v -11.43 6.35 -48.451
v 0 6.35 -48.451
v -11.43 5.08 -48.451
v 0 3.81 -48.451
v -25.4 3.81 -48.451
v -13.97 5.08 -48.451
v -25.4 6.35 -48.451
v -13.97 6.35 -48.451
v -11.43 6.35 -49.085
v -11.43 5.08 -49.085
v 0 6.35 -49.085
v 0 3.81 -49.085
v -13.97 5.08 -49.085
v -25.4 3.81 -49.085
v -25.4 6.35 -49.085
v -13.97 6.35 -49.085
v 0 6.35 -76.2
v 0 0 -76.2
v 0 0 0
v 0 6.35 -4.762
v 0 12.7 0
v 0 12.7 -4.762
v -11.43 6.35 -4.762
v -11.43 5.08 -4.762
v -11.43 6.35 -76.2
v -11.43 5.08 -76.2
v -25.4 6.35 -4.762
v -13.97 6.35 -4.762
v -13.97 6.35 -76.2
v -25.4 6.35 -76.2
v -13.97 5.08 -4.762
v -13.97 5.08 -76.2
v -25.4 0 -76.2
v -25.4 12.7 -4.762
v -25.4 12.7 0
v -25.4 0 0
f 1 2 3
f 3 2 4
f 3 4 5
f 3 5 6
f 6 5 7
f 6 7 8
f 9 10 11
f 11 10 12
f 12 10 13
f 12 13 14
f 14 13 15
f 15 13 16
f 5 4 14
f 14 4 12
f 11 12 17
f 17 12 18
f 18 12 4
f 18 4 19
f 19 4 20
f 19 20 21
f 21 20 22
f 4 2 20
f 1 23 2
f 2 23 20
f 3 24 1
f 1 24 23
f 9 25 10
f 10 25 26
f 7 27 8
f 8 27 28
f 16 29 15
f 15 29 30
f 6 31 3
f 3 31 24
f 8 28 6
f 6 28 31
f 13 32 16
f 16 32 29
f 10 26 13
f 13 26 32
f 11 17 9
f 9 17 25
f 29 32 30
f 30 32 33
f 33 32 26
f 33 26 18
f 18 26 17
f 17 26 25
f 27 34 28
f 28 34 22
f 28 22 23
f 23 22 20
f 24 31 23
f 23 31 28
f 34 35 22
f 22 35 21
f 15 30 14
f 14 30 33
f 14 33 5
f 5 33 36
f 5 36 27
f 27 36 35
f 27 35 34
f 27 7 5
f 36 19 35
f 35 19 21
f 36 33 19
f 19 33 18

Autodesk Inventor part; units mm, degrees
ref_plane "YZ Plane" through (0, 0, 0) normal (1, 0, 0) x (0, 1, 0)
ref_plane "XZ Plane" through (0, 0, 0) normal (0, 1, 0) x (-1, 0, 0)
ref_plane "XY Plane" through (0, 0, 0) normal (0, 0, 1) x (1, 0, 0)
sketch "Sketch1" plane through (0, 0, 0) normal (0, 1, 0) x (-1, 0, 0)
  line L0 (0, 0) -> (25.4, 0)
  line L1 (25.4, 0) -> (25.4, -76.2)
  line L2 (25.4, -76.2) -> (0, -76.2)
  line L3 (0, -76.2) -> (0, 0)
  dimension "d0" = 25.4
  dimension "d1" = 76.2
extrude "Extrusion1" add sketch "Sketch1" along normal blind 6.35
sketch "Sketch2" plane through (0, 6.35, 0) normal (0, 1, 0) x (1, 0, 0)
  line L0 (-25.4, 0) -> (0, 0) projected
  line L1 (-25.4, 76.2) -> (-25.4, 0) projected
  line L2 (0, 0) -> (-25.4, 0)
  line L3 (-25.4, 0) -> (-25.4, 4.7625)
  line L4 (-25.4, 4.7625) -> (0, 4.7625)
  line L5 (0, 4.7625) -> (0, 0)
  line L6 (-12.7, 4.7625) -> (-11.43, 4.7625)
  line L7 (-11.43, 4.7625) -> (-13.97, 4.7625)
  line L8 (-13.97, 4.7625) -> (-13.97, 80.9625)
  line L9 (-13.97, 80.9625) -> (-11.43, 80.9625)
  line L10 (-11.43, 80.9625) -> (-11.43, 4.7625)
  line L11 (-13.97, 4.7625) -> (-13.97, 48.4505)
  line L12 (-13.97, 48.4505) -> (0, 48.4505)
  line L13 (0, 0) -> (0, 76.2) projected
  line L14 (0, 48.4505) -> (-25.4, 48.4505)
  line L15 (-25.4, 48.4505) -> (-25.4, 49.0855)
  line L16 (-25.4, 49.0855) -> (0, 49.0855)
  line L17 (0, 49.0855) -> (0, 48.4505)
  point P0 (-11.43, 48.4505)
  point P1 (0, 49.0855)
  point P2 (-13.97, 49.0855)
  point P3 (-11.43, 49.0855)
  dimension "d4" = 4.7625
  dimension "d5" = 1.27
  dimension "d6" = 2.54
  dimension "d7" = 76.2
  dimension "d8" = 43.688
  dimension "d9" = 25.4
  dimension "d10" = 0.635
extrude "Extrusion2" add sketch "Sketch2" along normal blind 6.35 contours L1 L4 L5 L0
extrude "Extrusion3" cut sketch "Sketch2" against normal blind 1.27 contours L8 L12 L10 L4 | L8 L16 L10 L12 | L8 L9 L10 L16
extrude "Extrusion4" cut sketch "Sketch2" against normal blind 2.54 contours L1 L16 L8 L14 | L12 L10 L16 L13 | L8 L16 L10 L12
properties part number "Capillary Cutting Fixture for O-ring system"
